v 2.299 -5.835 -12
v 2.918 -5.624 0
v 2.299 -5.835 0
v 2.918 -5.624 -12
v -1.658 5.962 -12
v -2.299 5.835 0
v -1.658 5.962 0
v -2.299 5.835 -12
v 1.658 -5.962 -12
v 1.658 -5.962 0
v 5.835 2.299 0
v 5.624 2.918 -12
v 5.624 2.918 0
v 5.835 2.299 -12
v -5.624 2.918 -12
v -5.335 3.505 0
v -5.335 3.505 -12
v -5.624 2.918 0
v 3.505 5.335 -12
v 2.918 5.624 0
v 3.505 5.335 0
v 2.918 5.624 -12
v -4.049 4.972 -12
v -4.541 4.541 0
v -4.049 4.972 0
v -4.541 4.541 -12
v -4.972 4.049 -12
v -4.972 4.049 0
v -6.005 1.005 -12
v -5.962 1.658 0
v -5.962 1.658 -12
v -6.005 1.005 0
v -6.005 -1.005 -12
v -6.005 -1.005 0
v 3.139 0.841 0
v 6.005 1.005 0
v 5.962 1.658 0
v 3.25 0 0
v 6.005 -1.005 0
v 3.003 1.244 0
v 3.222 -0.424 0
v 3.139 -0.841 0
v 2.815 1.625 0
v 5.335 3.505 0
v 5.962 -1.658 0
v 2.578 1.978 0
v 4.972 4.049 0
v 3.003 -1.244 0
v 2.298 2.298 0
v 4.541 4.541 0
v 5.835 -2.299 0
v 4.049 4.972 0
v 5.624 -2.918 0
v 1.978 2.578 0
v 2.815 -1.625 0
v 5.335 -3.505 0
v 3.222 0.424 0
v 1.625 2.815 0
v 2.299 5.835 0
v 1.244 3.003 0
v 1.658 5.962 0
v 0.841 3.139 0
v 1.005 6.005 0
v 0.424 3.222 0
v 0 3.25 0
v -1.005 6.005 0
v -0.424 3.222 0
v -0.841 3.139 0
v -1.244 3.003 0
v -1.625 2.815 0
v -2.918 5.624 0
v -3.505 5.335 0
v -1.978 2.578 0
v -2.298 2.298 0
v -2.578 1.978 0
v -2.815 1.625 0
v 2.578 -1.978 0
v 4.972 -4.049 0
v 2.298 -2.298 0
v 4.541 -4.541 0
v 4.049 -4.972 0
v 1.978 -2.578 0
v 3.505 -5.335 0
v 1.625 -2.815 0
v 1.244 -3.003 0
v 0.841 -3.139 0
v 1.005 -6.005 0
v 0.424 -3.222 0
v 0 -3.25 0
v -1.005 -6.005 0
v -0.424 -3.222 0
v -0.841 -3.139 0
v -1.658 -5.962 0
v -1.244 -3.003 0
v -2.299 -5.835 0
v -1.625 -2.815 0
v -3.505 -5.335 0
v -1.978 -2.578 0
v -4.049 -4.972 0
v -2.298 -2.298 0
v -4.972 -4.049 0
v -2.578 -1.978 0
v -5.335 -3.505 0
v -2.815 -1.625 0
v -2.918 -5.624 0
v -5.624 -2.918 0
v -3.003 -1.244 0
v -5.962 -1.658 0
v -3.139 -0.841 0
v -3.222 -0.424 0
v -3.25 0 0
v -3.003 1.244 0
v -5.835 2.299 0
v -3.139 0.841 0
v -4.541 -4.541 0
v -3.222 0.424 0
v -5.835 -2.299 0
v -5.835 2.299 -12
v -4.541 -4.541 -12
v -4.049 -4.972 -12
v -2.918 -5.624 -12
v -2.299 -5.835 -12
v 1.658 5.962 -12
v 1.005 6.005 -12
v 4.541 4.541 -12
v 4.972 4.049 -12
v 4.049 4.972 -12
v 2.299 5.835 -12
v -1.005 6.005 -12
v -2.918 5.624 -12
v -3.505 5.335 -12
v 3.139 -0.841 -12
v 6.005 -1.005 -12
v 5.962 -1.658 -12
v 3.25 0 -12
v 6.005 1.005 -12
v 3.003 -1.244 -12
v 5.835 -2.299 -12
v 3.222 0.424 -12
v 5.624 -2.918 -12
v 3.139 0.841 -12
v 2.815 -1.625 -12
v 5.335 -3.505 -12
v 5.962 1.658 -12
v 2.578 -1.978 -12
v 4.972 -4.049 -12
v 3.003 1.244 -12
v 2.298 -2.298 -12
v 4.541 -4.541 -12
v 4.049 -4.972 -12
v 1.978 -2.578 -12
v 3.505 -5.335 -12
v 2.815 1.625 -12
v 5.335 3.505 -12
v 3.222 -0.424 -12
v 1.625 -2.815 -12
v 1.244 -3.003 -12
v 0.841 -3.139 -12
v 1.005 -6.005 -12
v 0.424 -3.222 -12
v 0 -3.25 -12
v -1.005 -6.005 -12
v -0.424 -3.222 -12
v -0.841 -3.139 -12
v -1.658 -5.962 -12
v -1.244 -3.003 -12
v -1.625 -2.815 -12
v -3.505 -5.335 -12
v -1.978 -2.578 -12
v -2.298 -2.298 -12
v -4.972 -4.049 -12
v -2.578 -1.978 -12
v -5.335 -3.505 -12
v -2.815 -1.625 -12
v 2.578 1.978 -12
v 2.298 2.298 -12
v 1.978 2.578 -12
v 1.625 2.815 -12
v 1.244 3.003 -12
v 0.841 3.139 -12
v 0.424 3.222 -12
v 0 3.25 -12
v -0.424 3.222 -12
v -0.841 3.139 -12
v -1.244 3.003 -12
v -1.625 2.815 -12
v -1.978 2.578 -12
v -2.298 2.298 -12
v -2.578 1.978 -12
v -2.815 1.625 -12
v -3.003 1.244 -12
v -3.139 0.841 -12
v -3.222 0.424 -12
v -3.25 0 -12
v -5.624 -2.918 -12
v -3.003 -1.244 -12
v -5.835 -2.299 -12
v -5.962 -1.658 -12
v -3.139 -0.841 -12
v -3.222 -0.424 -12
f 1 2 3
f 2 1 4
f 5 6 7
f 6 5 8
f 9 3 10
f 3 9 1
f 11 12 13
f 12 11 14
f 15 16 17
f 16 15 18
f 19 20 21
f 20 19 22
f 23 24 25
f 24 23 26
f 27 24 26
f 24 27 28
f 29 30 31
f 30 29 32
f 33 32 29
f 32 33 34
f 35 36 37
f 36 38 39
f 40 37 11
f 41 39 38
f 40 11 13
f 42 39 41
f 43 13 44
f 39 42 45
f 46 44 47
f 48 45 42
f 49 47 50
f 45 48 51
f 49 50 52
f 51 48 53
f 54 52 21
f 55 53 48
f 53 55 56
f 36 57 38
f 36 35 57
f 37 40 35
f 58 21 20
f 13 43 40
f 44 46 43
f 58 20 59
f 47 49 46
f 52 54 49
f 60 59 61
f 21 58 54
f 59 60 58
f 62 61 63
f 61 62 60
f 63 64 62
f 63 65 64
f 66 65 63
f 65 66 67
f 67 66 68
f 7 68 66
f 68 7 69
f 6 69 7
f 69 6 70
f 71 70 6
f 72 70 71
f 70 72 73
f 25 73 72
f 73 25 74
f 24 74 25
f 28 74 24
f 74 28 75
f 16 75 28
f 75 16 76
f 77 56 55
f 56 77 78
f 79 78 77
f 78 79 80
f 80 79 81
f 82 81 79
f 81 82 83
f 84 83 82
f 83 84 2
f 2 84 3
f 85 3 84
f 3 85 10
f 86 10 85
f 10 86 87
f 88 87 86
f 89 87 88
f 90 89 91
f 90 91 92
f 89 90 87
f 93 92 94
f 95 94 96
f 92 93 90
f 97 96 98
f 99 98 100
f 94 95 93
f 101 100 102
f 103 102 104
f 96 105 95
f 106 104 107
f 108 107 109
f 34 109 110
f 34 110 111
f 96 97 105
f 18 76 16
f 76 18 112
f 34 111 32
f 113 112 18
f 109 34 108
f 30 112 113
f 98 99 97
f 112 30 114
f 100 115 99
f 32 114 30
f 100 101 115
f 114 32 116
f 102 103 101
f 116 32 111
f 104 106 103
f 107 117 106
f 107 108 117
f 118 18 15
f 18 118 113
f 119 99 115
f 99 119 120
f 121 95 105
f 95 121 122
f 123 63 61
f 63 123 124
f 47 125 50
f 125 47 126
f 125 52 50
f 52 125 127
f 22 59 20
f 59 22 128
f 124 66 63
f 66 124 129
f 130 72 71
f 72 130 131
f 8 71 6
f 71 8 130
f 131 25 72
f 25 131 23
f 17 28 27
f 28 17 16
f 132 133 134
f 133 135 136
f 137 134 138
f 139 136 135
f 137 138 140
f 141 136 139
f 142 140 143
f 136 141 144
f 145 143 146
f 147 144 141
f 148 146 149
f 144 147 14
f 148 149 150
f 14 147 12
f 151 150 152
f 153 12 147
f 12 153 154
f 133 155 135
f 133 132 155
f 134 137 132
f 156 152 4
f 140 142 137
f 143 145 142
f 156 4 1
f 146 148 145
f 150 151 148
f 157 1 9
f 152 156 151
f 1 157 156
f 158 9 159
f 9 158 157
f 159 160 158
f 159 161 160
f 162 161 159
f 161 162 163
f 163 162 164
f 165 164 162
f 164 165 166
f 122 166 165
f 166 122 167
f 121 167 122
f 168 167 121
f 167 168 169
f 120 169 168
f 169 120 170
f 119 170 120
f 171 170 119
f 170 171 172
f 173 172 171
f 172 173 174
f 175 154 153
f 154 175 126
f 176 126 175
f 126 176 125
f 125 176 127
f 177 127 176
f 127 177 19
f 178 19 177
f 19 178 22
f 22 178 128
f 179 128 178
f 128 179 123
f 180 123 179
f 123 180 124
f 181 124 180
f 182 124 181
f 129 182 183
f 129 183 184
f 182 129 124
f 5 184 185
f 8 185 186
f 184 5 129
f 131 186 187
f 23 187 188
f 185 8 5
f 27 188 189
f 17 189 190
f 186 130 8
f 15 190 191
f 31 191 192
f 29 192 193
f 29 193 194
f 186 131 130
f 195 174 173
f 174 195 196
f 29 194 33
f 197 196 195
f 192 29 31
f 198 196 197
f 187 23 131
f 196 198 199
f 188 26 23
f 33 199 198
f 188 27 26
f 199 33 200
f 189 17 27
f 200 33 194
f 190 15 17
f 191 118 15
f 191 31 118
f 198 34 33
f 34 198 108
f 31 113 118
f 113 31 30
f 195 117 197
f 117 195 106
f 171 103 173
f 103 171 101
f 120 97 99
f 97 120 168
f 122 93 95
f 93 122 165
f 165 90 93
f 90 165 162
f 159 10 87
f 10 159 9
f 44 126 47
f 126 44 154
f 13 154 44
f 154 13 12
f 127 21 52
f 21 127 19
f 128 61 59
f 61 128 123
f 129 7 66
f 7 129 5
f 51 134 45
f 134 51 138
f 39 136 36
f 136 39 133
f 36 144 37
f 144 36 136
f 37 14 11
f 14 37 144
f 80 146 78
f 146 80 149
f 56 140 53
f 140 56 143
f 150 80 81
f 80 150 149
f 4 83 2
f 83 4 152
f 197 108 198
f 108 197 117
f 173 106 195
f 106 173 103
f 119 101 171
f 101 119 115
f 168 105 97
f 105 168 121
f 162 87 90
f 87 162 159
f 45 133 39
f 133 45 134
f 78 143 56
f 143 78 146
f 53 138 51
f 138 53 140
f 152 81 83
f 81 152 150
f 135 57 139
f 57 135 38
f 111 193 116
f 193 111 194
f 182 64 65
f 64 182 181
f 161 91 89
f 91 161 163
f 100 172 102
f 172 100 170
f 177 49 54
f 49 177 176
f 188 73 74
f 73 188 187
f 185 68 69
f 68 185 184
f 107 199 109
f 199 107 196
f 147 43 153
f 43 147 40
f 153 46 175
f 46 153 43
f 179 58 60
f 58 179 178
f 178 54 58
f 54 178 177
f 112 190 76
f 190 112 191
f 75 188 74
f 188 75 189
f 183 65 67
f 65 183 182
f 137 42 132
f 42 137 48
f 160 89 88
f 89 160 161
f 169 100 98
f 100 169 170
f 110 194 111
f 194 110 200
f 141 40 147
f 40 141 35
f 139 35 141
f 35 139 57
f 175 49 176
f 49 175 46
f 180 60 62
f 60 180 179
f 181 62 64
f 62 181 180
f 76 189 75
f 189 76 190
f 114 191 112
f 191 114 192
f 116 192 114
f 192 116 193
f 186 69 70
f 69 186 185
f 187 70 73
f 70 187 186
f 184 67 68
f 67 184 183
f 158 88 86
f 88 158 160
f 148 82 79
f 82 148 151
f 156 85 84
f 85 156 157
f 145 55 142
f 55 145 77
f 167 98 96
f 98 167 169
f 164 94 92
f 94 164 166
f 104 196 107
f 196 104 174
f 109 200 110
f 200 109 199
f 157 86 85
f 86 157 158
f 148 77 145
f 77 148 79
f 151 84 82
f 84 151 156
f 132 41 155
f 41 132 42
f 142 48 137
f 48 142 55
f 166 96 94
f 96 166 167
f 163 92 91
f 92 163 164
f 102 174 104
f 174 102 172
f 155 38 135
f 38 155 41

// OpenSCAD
// Generated by SolidPython 1.1.3 on 2022-09-15 16:37:11
$fn = 48;


difference() {
	union() {
		translate(v = [0, 0, 0]) {
			difference() {
				union() {
					color(alpha = 1.0000000000, c = "Gold") {
						translate(v = [0, 0, 0]) {
							rotate(a = [0, 0, 0]) {
								translate(v = [0, 0, -12]) {
									linear_extrude(height = 12) {
										offset(r = 5) {
											square(center = true, size = [2.0100000000, 2.0100000000]);
										}
									}
								}
							}
						}
					}
				}
				union() {
					color(alpha = 1.0000000000, c = "Gold") {
						translate(v = [0.0000000000, 0.0000000000, 0]) {
							rotate(a = [0, 0, 0]) {
								translate(v = [0, 0, -250]) {
									cylinder(h = 500, r = 3.2500000000);
								}
							}
						}
					}
				}
			}
		}
	}
	union();
}
/***********************************************
*********      SolidPython code:      **********
************************************************
 
import subprocess

from solid.objects import *
from solid import scad_render_to_file, scad_render

import math

import os

##################################################################################################################################################
##################################################################################################################################################
##################################################################################################################################################
##################################################################################################################################################
######  DIMENSION STUFF
##################################################################################################################################################
##################################################################################################################################################
##################################################################################################################################################
##################################################################################################################################################


mode = "3DPR"
#mode = "LAZE"
#mode = "TURE"
#mode = ""


######  Countersunk
countersunkM = []
WIDTH = 0
DEPTH = 1
countersunkM1width = 0; countersunkM1depth = 0; countersunkM2width = 0; countersunkM2depth = 0
countersunkM3width = 0
countersunkM3depth = 0
countersunkM4width = 0
countersunkM4depth = 0
countersunkM5width = 0
countersunkM5depth = 0
countersunkM6width = 0
countersunkM6depth = 0

######  Holes
holeM = []
holeM1 = 0
holeM2 = 0
holeM3 = 0
holeM4 = 0
holeM5 = 0
holeM6 = 0

######  Nuts
nutM = []
NUTWIDTH = 0
NUTDEPTH = 1
nutM1width = 0
nutM1depth = 0
nutM2width = 0
nutM2depth = 0
nutM3width = 0
nutM3depth = 0
nutM4width = 0
nutM4depth = 0
nutM5width = 0
nutM5depth = 0
nutM6width = 0
nutM6depth = 0

######  OOEB
ooebPinWidth = 0
ooebPinWidthWide = 0


######  Colors
colDefault = "Gold"

colOOEBbase = colDefault

colLEDRed = "red"
colWire = "gray"
    ######  Resistor
colRes = list()
colResistor = "beige"

colResBlack = "black"
colRes.append(colResBlack)
colResBrown = "brown"
colRes.append(colResBrown)
colResRed = "red"
colRes.append(colResRed)
colResOrange = "orange"
colRes.append(colResOrange)
colResYellow = "yellow"
colRes.append(colResYellow)
colResGreen = "green"
colRes.append(colResGreen)
colResBlue = "blue"
colRes.append(colResBlue)
colResPurple = "purple"
colRes.append(colResPurple)
colResGray = "gray"
colRes.append(colResGray)
colResWhite = "white"
colRes.append(colResWhite)





def changeMode(m="3DPR"):
    #print("####################################################      CHANGING MODES TO: " + m)
    global mode
    mode = m
    ######  Countersunk
    global countersunkM, countersunkM1width, countersunkM1depth, countersunkM2width, countersunkM2depth, countersunkM3width, countersunkM3depth, countersunkM4width, countersunkM4depth, countersunkM5width, countersunkM5depth, countersunkM6width, countersunkM6depth
    countersunkM = []
    countersunkM.append([0,0])
    countersunkM1width = 0 if mode== "3DPR" else 0
    countersunkM1depth = 0 if mode== "3DPR" else 0
    countersunkM.append([countersunkM1width,countersunkM1depth])
    countersunkM2width = 0 if mode== "3DPR" else 0
    countersunkM2depth = 0 if mode== "3DPR" else 0
    countersunkM.append([countersunkM2width,countersunkM2depth])
    countersunkM3width = 5.5/2+0.6 if mode== "3DPR" else 5.5/2
    countersunkM3depth = 1.7 if mode== "3DPR" else 1.7
    countersunkM.append([countersunkM3width,countersunkM3depth])
    countersunkM4width = 0 if mode== "3DPR" else 0
    countersunkM4depth = 0 if mode== "3DPR" else 0
    countersunkM.append([countersunkM4width,countersunkM4depth])
    countersunkM5width = 0 if mode== "3DPR" else 0
    countersunkM5depth = 0 if mode== "3DPR" else 0
    countersunkM.append([countersunkM5width,countersunkM5depth])
    countersunkM6width = 0 if mode== "3DPR" else 0
    countersunkM6depth = 0 if mode== "3DPR" else 0
    countersunkM.append([countersunkM6width,countersunkM6depth])
    ######  Holes
    global holeM, holeM1, holeM2, holeM3, holeM4, holeM5, holeM6, holeM7, holeM8
    holeM = []
    holeM1 = 1.2/2 if mode== "3DPR" else 1/2
    holeM2 = 2.3/2 if mode== "3DPR" else 2/2
    holeM3 = 3.4/2 if mode== "3DPR" else 3/2
    holeM4 = 4.4/2 if mode== "3DPR" else 4/2
    holeM5 = 5.4/2 if mode== "3DPR" else 5/2
    holeM6 = 6.5/2 if mode== "3DPR" else 6/2
    holeM7 = 7.5/2 if mode== "3DPR" else 7/2
    holeM8 = 8.6/2 if mode== "3DPR" else 8/2
    holeM.append(0)
    holeM.append(holeM1)
    holeM.append(holeM2)
    holeM.append(holeM3)
    holeM.append(holeM4)
    holeM.append(holeM5)
    holeM.append(holeM6)
    holeM.append(holeM7)
    holeM.append(holeM8)
    #####  Nuts
    global nutM, nutM1width, nutM1depth, nutM2width, nutM2depth, nutM3width, nutM3depth, nutM4width, nutM4depth, nutM5width, nutM5depth, nutM6width, nutM6depth
    nutM = []
    nutM.append([0,0]) 
    #M1 Nut
    nutM1width = 0
    nutM1depth = 0
    nutM.append([nutM1width,nutM1depth])    
    #M2 Nut
    nutM2width = 0
    nutM2depth = 0
    nutM.append([nutM2width,nutM2depth])    
    #M3 Nut
    #nutM3width = 6.05 if mode== "3DPR" else 5.5
    nutM3width = 6.05 * 1.154 if mode== "3DPR" else 5.5 * 1.154
    nutM3depth = 2.5 if mode== "3DPR" else 2.5
    nutM.append([nutM3width,nutM3depth])    
    #M4 Nut
    nutM4width = 0
    nutM4depth = 0
    nutM.append([nutM4width,nutM4depth])    
    #M5 Nut
    nutM5width = 0
    nutM5depth = 0
    nutM.append([nutM5width,nutM5depth])    
    #M6 Nut
    nutM6width = 11 if mode== "3DPR" else 10
    nutM6depth = 5 if mode== "3DPR" else 5
    nutM.append([nutM6width,nutM6depth])    

    ######  OOEB
    global ooebPinWidth,  ooebPinWidthWide

    ooebPinWidth = 0.6
    if(mode=="3DPR" or mode=="LAZE"):
        ooebPinWidth = 0.6 + 0.6
    ooebPinWidthWide = 1.2
    if(mode=="3DPR" or mode=="LAZE"):
        ooebPinWidthWide = 1.2 + 0.6


changeMode()


""""    
holeM12D = s=="3DPR" ? 1.4/2 : 1.2/2;
holeM16D = s=="3DPR" ? 1.8/2 : 1.6/2;
holeM2 = s=="3DPR" ? 2.3/2 : 2/2;
holeM25D = s=="3DPR" ? 2.8/2 : 2.5/2;
holeM27D = s=="3DPR" ? 3.1/2 : 2.7/2;    
holeM3 = s=="3DPR" ? 3.4/2 : 3/2;
holeM35D = s=="3DPR" ? 3.9/2 : 35/2;
holeM4 = s=="3DPR" ? 4.4/2 : 4/2;
holeM5 = s=="3DPR" ? 5.4/2 : 5/2;
holeM6 = s=="3DPR" ? 6.5/2 : 6/2;
holeM6Minus = s=="3DPR" ? 5.8/2 : 5.9/2;
holeM7 = s=="3DPR" ? 7.5/2 : 7/2;
holeM8 = s=="3DPR" ? 8.6/2 : 8/2;
holeM9 = s=="3DPR" ? 9.6/2 : 9/2;
holeM10 = s=="3DPR" ? 10.6/2 : 10/2;
holeM11 = s=="3DPR" ? 11.6/2 : 11/2;
holeM12 = s=="3DPR" ? 12.6/2 : 12/2;
holeM13 = s=="3DPR" ? 13.6/2 : 13/2;
holeM14 = s=="3DPR" ? 14.6/2 : 14/2;
holeM15 = s=="3DPR" ? 15.6/2 : 15/2;
holeM16 = s=="3DPR" ? 16.6/2 : 16/2;
holeM17 = s=="3DPR" ? 17.6/2 : 17/2;
holeM18 = s=="3DPR" ? 18.6/2 : 18/2;
holeM19 = s=="3DPR" ? 19.6/2 : 19/2;
holeM20 = s=="3DPR" ? 20.6/2 : 20/2;
"""

##################################################################################################################################################
##################################################################################################################################################
##################################################################################################################################################
##################################################################################################################################################
######  REGULAR STUFF
##################################################################################################################################################
##################################################################################################################################################
##################################################################################################################################################
##################################################################################################################################################


def setMode(mode="3DPR"):
    changeMode(mode)

def getMode():
    return mode



def saveToScad(fileName, parts):
    dir =  os.path.dirname(os.path.abspath(fileName))
    Path(dir).mkdir(parents=True, exist_ok=True)
    file_out = scad_render_to_file(parts, fileName, file_header=f'$fn = 48;')


def saveToDxf(fileIn, fileOut=""):
    if fileOut == "":
        fileOut = fileIn.replace(".scad",".dxf")
    saveToFile(fileIn, fileOut)
    
def saveToPng(fileIn, fileOut="",extra="--render"):
    if fileOut == "":
        fileOut = fileIn.replace(".scad",".png")
    saveToFile(fileIn, fileOut)

def saveToStl(fileIn, fileOut=""):
    if fileOut == "":
        fileOut = fileIn.replace(".scad",".stl")
    saveToFile(fileIn, fileOut)
    
def saveToSvg(fileIn, fileOut=""):
    if fileOut == "":
        fileOut = fileIn.replace(".scad",".svg")
    saveToFile(fileIn, fileOut)

def saveToFile(fileIn, fileOut,extra=""):
    extra = extra + " --colorscheme Tomorrow"

    launchStr = 'openscad -o "' + fileOut + '"' + extra + ' "' + fileIn + '"'
    if ".png" in fileOut:
        launchStr = launchStr + " --render"
    print("            saveToFile launch string: " + launchStr)
    subprocess.run(launchStr)
    x=0



def insert(item,pos=[None,None,None],x=0,y=0,z=0,ex=0,size=[None,None,None],length=0,rot=[None,None,None],rotX=0,rotY=0,rotZ=0,width=0,height=0,depth=100,rad=0,rad2=0,color=colDefault,alpha=1,OOwidth=0,OOheight=0,holes=True,negative=True, name="",m=""):
    return OPSCInsert(item,pos,x,y,z,ex,size,length,rot,rotX,rotY,rotZ,width,height,depth,rad,rad2,color,alpha,OOwidth,OOheight,holes,negative,name,m=m)


def OPSCInsert(item,pos=[None,None,None],x=0,y=0,z=0,ex=0,size=[None,None,None],length=0,rot=[None,None,None],rotX=0,rotY=0,rotZ=0,width=0,height=0,depth=100,rad=0,rad2=0,col=colDefault,alpha=1,OOwidth=0,OOheight=0,holes=True,negative=True, name="",m=""):
    
    """
        color(color,alpha){
            translate([x,y,z]){
                    rotate([rotX,rotY,rotZ]){
    """
    returnValue = ""

    #print(pos)

    if pos[0] != None:
        x=pos[0]
        y=pos[1]
        z=pos[2]
    if rot[0] != None:
        rotX=rot[0]
        rotY=rot[1]
        rotZ=rot[2]
    
    returnValue = color(col)(translate((x,y,z))(
                            rotate((rotX,rotY,rotZ))(
                                OPSCInsertIf(item,pos,x,y,z,ex,size,length,rot,rotX,rotY,rotZ,width,height,depth,rad,rad2,col,alpha,OOwidth,OOheight,holes,negative,name,m=m)
                            )
                        ))
                
    

    return returnValue

def OPSCInsertIf(item,pos=[None,None,None],x=0,y=0,z=0,ex=0,size=[None,None,None],length=0,rot=[None,None,None],rotX=0,rotY=0,rotZ=0,width=0,height=0,depth=100,rad=0,rad2=0,color=colDefault,alpha=1,OOwidth=0,OOheight=0,holes=True,negative=True, name="",m=""):
    returnValue = cube([10,10,10])

    if size[0] != None:
        width=size[0]
        height=size[1]
        depth=size[2]

    #print("    OPSCInsert item:" + str(item) + " at:[" + str(x) + "," + str(y) + "," + str(z) + "] size: [" + str(width) + "," + str(height) + "," + str(depth) + "]")

    if(item=="cube"):
        returnValue =  translate([0,0,-depth/2])(cube([width,height,depth],center=True).set_modifier(m))
    elif(item=="cylinder"):        
        returnValue = translate([0,0,-depth/2])(cylinder(r=rad,h=depth,center=True).set_modifier(m))
    elif(item=="sphere"):        
        returnValue = translate([0,0,-rad])(sphere(r=rad).set_modifier(m))
    elif(item=="plane"):
        if depth == 100:
            returnValue = insert("cube",size=[1000,1000,0.1],color=color).set_modifier(m)            
        else:
            returnValue = insert("cube",size=[1000,1000,depth],color=color).set_modifier(m)                        
    elif(item=="cubeRounded"):
        if(rad == 0):
                            rad = 5
        returnValue =  translate([0,0,-depth])(
                        linear_extrude(height=depth)(                        
                            offset(r=rad)(
                                square((width-rad*2+.01,height-rad*2+.01),center=True).set_modifier(m)
                                )
                            )
        )
    ######  Countersunk
    elif(item == "countersunkM1" or item == "csM1" ):
        returnValue = OSPCgetCountersunk(rad=1,m=m)
    elif(item == "countersunkM2" or item == "csM2" ):
        returnValue = OSPCgetCountersunk(rad=2,m=m)
    elif(item == "countersunkM3" or item == "csM3" ):
        returnValue = OSPCgetCountersunk(rad=3,m=m)
    elif(item == "countersunkM4" or item == "csM4" ):
        returnValue = OSPCgetCountersunk(rad=4,m=m)
    elif(item == "countersunkM5" or item == "csM5" ):
        returnValue = OSPCgetCountersunk(rad=5,m=m)
    elif(item == "countersunkM6" or item == "csM6" ):
        returnValue = OSPCgetCountersunk(rad=6,m=m)
    elif(item == "countersunk" or item == "cs"):
        returnValue = OSPCgetCountersunk(rad=rad,m=m)


    ######  Holes    
    elif(item == "holeM1"):
        returnValue = OSPCgetHole(rad=1,m=m)
    elif(item == "holeM2"):
        returnValue = OSPCgetHole(rad=2,m=m)
    elif(item == "holeM3"):
        returnValue = OSPCgetHole(rad=3,m=m)
    elif(item == "holeM4"):
        returnValue = OSPCgetHole(rad=4,m=m)
    elif(item == "holeM5"):
        returnValue = OSPCgetHole(rad=5,m=m)
    elif(item == "holeM6"):
        returnValue = OSPCgetHole(rad=6,m=m)
    elif(item == "holeM7"):
        returnValue = OSPCgetHole(rad=7,m=m)
    elif(item == "holeM8"):
        returnValue = OSPCgetHole(rad=8,m=m)
    elif(item == "hole"):
        returnValue = OSPCgetHole(rad=rad,m=m)

    ######  Nuts
    elif(item == "nutM1"):
        returnValue = OSPCgetNut(rad=1,depth=depth,m=m)
    elif(item == "nutM2"):
        returnValue = OSPCgetNut(rad=2,depth=depth,m=m)
    elif(item == "nutM3"):
        returnValue = OSPCgetNut(rad=3,depth=depth,m=m)
    elif(item == "nutM4"):
        returnValue = OSPCgetNut(rad=4,depth=depth,m=m)
    elif(item == "nutM5"):
        returnValue = OSPCgetNut(rad=5,depth=depth,m=m)
    elif(item == "nutM6"):
        returnValue = OSPCgetNut(rad=6,depth=depth,m=m)
    elif(item == "nut"):
        returnValue = OSPCgetNut(rad=rad,depth=depth,m=m)
    return returnValue

                

def OSPCgetHole(rad,m=""):
    return translate([0,0,-250])(cylinder(r=holeM[rad],h=500).set_modifier(m))

def OSPCgetNut(rad,depth,m=""):
    depth = nutM[rad][NUTDEPTH] if depth==100 else depth
    returnValue = OPSChexagon(nutM[rad][NUTWIDTH],depth=depth,m=m)
    return returnValue

def OSPCgetCountersunk(rad,m=""):
    depth=countersunkM[rad][DEPTH]
    returnValue = translate([0,0,-depth])(cylinder(h=depth,r2=countersunkM[rad][WIDTH],r1=holeM[rad])).set_modifier(m)
    return returnValue

def OPSChexagon(width,depth,m=""):
    angles = []
    for a in range(0,6):
        angles.append((a*360/6)+30)
    points = []
    for angle in angles:
        x = math.cos((math.pi/180)*angle)*(width/2)
        y = math.sin((math.pi/180)*angle)*(width/2)
        points.append([x,y])

        rv = polygon(points)
        rv = linear_extrude(height=depth)(rv)
        rv = translate([0,0,-depth])(rv)
        rv = rv.set_modifier(m)

    return rv

def OPSChexagonOld(width,depth,m=""):
    cutter = item()
    wid=width*2
    cutter.addPos(insert("cube",pos=[wid/2+width/2,0,0],size=[wid,wid,depth]))
    cutter.addPos(insert("cube",pos=[-wid/2-width/2,0,0],size=[wid,wid,depth]))

    cut = cutter.getPart()
    #print(depth)
    returnValue = difference()(
        translate([0,0,-depth/2])(cube([wid,wid,depth],center=True)),
        cut,
        rotate([0,0,60])(cut),
        rotate([0,0,-60])(cut)
    ).set_modifier(m)

    return returnValue

class item:

    def __init__(self):
        self.posItems=list()
        self.negItems=list()

    def isEmpty(self):        
        testString = scad_render(self.getPart())
        #print("test String length: " + str(len(testString)))
        returnValue = False
        if len(testString) == 270:            
            returnValue = True
        return returnValue

    def addPos(self,part):
        self.posItems.append(part)
    def addNeg(self,part):
        self.negItems.append(part)

    def getPart(self):
        returnValue = difference()(
            union()(self.posItems),
            union()(self.negItems)
        )
        return returnValue

    def getLaser(self,start=0,layers=1,thickness=-3,tileDif=200):
        rv= []

        for x in range(layers):
            rv.append(translate([0,x*tileDif,0])(
                    projection()(
                        intersection()(
                            insert("plane",z=start+x*thickness),
                            self.getPart()
                        )
                    )
            )
            )
        return union()(rv)

    def getSplit(self,start=0,depth=6,tileDif=200):
        rv= []

        rv.append(translate([0,0,0])(
            intersection()(
                insert("cube",size=[100,100,depth],z=start),
                self.getPart()
            )
        )
        )

        rv.append(translate([0,0,depth])(rotate([180,0,0])(translate([0,tileDif,depth])(
            intersection()(
                insert("cube",size=[100,100,depth],z=start-depth),
                self.getPart()
            )
        )
        )
        )
        )        
        return union()(rv)


 
 
************************************************/
